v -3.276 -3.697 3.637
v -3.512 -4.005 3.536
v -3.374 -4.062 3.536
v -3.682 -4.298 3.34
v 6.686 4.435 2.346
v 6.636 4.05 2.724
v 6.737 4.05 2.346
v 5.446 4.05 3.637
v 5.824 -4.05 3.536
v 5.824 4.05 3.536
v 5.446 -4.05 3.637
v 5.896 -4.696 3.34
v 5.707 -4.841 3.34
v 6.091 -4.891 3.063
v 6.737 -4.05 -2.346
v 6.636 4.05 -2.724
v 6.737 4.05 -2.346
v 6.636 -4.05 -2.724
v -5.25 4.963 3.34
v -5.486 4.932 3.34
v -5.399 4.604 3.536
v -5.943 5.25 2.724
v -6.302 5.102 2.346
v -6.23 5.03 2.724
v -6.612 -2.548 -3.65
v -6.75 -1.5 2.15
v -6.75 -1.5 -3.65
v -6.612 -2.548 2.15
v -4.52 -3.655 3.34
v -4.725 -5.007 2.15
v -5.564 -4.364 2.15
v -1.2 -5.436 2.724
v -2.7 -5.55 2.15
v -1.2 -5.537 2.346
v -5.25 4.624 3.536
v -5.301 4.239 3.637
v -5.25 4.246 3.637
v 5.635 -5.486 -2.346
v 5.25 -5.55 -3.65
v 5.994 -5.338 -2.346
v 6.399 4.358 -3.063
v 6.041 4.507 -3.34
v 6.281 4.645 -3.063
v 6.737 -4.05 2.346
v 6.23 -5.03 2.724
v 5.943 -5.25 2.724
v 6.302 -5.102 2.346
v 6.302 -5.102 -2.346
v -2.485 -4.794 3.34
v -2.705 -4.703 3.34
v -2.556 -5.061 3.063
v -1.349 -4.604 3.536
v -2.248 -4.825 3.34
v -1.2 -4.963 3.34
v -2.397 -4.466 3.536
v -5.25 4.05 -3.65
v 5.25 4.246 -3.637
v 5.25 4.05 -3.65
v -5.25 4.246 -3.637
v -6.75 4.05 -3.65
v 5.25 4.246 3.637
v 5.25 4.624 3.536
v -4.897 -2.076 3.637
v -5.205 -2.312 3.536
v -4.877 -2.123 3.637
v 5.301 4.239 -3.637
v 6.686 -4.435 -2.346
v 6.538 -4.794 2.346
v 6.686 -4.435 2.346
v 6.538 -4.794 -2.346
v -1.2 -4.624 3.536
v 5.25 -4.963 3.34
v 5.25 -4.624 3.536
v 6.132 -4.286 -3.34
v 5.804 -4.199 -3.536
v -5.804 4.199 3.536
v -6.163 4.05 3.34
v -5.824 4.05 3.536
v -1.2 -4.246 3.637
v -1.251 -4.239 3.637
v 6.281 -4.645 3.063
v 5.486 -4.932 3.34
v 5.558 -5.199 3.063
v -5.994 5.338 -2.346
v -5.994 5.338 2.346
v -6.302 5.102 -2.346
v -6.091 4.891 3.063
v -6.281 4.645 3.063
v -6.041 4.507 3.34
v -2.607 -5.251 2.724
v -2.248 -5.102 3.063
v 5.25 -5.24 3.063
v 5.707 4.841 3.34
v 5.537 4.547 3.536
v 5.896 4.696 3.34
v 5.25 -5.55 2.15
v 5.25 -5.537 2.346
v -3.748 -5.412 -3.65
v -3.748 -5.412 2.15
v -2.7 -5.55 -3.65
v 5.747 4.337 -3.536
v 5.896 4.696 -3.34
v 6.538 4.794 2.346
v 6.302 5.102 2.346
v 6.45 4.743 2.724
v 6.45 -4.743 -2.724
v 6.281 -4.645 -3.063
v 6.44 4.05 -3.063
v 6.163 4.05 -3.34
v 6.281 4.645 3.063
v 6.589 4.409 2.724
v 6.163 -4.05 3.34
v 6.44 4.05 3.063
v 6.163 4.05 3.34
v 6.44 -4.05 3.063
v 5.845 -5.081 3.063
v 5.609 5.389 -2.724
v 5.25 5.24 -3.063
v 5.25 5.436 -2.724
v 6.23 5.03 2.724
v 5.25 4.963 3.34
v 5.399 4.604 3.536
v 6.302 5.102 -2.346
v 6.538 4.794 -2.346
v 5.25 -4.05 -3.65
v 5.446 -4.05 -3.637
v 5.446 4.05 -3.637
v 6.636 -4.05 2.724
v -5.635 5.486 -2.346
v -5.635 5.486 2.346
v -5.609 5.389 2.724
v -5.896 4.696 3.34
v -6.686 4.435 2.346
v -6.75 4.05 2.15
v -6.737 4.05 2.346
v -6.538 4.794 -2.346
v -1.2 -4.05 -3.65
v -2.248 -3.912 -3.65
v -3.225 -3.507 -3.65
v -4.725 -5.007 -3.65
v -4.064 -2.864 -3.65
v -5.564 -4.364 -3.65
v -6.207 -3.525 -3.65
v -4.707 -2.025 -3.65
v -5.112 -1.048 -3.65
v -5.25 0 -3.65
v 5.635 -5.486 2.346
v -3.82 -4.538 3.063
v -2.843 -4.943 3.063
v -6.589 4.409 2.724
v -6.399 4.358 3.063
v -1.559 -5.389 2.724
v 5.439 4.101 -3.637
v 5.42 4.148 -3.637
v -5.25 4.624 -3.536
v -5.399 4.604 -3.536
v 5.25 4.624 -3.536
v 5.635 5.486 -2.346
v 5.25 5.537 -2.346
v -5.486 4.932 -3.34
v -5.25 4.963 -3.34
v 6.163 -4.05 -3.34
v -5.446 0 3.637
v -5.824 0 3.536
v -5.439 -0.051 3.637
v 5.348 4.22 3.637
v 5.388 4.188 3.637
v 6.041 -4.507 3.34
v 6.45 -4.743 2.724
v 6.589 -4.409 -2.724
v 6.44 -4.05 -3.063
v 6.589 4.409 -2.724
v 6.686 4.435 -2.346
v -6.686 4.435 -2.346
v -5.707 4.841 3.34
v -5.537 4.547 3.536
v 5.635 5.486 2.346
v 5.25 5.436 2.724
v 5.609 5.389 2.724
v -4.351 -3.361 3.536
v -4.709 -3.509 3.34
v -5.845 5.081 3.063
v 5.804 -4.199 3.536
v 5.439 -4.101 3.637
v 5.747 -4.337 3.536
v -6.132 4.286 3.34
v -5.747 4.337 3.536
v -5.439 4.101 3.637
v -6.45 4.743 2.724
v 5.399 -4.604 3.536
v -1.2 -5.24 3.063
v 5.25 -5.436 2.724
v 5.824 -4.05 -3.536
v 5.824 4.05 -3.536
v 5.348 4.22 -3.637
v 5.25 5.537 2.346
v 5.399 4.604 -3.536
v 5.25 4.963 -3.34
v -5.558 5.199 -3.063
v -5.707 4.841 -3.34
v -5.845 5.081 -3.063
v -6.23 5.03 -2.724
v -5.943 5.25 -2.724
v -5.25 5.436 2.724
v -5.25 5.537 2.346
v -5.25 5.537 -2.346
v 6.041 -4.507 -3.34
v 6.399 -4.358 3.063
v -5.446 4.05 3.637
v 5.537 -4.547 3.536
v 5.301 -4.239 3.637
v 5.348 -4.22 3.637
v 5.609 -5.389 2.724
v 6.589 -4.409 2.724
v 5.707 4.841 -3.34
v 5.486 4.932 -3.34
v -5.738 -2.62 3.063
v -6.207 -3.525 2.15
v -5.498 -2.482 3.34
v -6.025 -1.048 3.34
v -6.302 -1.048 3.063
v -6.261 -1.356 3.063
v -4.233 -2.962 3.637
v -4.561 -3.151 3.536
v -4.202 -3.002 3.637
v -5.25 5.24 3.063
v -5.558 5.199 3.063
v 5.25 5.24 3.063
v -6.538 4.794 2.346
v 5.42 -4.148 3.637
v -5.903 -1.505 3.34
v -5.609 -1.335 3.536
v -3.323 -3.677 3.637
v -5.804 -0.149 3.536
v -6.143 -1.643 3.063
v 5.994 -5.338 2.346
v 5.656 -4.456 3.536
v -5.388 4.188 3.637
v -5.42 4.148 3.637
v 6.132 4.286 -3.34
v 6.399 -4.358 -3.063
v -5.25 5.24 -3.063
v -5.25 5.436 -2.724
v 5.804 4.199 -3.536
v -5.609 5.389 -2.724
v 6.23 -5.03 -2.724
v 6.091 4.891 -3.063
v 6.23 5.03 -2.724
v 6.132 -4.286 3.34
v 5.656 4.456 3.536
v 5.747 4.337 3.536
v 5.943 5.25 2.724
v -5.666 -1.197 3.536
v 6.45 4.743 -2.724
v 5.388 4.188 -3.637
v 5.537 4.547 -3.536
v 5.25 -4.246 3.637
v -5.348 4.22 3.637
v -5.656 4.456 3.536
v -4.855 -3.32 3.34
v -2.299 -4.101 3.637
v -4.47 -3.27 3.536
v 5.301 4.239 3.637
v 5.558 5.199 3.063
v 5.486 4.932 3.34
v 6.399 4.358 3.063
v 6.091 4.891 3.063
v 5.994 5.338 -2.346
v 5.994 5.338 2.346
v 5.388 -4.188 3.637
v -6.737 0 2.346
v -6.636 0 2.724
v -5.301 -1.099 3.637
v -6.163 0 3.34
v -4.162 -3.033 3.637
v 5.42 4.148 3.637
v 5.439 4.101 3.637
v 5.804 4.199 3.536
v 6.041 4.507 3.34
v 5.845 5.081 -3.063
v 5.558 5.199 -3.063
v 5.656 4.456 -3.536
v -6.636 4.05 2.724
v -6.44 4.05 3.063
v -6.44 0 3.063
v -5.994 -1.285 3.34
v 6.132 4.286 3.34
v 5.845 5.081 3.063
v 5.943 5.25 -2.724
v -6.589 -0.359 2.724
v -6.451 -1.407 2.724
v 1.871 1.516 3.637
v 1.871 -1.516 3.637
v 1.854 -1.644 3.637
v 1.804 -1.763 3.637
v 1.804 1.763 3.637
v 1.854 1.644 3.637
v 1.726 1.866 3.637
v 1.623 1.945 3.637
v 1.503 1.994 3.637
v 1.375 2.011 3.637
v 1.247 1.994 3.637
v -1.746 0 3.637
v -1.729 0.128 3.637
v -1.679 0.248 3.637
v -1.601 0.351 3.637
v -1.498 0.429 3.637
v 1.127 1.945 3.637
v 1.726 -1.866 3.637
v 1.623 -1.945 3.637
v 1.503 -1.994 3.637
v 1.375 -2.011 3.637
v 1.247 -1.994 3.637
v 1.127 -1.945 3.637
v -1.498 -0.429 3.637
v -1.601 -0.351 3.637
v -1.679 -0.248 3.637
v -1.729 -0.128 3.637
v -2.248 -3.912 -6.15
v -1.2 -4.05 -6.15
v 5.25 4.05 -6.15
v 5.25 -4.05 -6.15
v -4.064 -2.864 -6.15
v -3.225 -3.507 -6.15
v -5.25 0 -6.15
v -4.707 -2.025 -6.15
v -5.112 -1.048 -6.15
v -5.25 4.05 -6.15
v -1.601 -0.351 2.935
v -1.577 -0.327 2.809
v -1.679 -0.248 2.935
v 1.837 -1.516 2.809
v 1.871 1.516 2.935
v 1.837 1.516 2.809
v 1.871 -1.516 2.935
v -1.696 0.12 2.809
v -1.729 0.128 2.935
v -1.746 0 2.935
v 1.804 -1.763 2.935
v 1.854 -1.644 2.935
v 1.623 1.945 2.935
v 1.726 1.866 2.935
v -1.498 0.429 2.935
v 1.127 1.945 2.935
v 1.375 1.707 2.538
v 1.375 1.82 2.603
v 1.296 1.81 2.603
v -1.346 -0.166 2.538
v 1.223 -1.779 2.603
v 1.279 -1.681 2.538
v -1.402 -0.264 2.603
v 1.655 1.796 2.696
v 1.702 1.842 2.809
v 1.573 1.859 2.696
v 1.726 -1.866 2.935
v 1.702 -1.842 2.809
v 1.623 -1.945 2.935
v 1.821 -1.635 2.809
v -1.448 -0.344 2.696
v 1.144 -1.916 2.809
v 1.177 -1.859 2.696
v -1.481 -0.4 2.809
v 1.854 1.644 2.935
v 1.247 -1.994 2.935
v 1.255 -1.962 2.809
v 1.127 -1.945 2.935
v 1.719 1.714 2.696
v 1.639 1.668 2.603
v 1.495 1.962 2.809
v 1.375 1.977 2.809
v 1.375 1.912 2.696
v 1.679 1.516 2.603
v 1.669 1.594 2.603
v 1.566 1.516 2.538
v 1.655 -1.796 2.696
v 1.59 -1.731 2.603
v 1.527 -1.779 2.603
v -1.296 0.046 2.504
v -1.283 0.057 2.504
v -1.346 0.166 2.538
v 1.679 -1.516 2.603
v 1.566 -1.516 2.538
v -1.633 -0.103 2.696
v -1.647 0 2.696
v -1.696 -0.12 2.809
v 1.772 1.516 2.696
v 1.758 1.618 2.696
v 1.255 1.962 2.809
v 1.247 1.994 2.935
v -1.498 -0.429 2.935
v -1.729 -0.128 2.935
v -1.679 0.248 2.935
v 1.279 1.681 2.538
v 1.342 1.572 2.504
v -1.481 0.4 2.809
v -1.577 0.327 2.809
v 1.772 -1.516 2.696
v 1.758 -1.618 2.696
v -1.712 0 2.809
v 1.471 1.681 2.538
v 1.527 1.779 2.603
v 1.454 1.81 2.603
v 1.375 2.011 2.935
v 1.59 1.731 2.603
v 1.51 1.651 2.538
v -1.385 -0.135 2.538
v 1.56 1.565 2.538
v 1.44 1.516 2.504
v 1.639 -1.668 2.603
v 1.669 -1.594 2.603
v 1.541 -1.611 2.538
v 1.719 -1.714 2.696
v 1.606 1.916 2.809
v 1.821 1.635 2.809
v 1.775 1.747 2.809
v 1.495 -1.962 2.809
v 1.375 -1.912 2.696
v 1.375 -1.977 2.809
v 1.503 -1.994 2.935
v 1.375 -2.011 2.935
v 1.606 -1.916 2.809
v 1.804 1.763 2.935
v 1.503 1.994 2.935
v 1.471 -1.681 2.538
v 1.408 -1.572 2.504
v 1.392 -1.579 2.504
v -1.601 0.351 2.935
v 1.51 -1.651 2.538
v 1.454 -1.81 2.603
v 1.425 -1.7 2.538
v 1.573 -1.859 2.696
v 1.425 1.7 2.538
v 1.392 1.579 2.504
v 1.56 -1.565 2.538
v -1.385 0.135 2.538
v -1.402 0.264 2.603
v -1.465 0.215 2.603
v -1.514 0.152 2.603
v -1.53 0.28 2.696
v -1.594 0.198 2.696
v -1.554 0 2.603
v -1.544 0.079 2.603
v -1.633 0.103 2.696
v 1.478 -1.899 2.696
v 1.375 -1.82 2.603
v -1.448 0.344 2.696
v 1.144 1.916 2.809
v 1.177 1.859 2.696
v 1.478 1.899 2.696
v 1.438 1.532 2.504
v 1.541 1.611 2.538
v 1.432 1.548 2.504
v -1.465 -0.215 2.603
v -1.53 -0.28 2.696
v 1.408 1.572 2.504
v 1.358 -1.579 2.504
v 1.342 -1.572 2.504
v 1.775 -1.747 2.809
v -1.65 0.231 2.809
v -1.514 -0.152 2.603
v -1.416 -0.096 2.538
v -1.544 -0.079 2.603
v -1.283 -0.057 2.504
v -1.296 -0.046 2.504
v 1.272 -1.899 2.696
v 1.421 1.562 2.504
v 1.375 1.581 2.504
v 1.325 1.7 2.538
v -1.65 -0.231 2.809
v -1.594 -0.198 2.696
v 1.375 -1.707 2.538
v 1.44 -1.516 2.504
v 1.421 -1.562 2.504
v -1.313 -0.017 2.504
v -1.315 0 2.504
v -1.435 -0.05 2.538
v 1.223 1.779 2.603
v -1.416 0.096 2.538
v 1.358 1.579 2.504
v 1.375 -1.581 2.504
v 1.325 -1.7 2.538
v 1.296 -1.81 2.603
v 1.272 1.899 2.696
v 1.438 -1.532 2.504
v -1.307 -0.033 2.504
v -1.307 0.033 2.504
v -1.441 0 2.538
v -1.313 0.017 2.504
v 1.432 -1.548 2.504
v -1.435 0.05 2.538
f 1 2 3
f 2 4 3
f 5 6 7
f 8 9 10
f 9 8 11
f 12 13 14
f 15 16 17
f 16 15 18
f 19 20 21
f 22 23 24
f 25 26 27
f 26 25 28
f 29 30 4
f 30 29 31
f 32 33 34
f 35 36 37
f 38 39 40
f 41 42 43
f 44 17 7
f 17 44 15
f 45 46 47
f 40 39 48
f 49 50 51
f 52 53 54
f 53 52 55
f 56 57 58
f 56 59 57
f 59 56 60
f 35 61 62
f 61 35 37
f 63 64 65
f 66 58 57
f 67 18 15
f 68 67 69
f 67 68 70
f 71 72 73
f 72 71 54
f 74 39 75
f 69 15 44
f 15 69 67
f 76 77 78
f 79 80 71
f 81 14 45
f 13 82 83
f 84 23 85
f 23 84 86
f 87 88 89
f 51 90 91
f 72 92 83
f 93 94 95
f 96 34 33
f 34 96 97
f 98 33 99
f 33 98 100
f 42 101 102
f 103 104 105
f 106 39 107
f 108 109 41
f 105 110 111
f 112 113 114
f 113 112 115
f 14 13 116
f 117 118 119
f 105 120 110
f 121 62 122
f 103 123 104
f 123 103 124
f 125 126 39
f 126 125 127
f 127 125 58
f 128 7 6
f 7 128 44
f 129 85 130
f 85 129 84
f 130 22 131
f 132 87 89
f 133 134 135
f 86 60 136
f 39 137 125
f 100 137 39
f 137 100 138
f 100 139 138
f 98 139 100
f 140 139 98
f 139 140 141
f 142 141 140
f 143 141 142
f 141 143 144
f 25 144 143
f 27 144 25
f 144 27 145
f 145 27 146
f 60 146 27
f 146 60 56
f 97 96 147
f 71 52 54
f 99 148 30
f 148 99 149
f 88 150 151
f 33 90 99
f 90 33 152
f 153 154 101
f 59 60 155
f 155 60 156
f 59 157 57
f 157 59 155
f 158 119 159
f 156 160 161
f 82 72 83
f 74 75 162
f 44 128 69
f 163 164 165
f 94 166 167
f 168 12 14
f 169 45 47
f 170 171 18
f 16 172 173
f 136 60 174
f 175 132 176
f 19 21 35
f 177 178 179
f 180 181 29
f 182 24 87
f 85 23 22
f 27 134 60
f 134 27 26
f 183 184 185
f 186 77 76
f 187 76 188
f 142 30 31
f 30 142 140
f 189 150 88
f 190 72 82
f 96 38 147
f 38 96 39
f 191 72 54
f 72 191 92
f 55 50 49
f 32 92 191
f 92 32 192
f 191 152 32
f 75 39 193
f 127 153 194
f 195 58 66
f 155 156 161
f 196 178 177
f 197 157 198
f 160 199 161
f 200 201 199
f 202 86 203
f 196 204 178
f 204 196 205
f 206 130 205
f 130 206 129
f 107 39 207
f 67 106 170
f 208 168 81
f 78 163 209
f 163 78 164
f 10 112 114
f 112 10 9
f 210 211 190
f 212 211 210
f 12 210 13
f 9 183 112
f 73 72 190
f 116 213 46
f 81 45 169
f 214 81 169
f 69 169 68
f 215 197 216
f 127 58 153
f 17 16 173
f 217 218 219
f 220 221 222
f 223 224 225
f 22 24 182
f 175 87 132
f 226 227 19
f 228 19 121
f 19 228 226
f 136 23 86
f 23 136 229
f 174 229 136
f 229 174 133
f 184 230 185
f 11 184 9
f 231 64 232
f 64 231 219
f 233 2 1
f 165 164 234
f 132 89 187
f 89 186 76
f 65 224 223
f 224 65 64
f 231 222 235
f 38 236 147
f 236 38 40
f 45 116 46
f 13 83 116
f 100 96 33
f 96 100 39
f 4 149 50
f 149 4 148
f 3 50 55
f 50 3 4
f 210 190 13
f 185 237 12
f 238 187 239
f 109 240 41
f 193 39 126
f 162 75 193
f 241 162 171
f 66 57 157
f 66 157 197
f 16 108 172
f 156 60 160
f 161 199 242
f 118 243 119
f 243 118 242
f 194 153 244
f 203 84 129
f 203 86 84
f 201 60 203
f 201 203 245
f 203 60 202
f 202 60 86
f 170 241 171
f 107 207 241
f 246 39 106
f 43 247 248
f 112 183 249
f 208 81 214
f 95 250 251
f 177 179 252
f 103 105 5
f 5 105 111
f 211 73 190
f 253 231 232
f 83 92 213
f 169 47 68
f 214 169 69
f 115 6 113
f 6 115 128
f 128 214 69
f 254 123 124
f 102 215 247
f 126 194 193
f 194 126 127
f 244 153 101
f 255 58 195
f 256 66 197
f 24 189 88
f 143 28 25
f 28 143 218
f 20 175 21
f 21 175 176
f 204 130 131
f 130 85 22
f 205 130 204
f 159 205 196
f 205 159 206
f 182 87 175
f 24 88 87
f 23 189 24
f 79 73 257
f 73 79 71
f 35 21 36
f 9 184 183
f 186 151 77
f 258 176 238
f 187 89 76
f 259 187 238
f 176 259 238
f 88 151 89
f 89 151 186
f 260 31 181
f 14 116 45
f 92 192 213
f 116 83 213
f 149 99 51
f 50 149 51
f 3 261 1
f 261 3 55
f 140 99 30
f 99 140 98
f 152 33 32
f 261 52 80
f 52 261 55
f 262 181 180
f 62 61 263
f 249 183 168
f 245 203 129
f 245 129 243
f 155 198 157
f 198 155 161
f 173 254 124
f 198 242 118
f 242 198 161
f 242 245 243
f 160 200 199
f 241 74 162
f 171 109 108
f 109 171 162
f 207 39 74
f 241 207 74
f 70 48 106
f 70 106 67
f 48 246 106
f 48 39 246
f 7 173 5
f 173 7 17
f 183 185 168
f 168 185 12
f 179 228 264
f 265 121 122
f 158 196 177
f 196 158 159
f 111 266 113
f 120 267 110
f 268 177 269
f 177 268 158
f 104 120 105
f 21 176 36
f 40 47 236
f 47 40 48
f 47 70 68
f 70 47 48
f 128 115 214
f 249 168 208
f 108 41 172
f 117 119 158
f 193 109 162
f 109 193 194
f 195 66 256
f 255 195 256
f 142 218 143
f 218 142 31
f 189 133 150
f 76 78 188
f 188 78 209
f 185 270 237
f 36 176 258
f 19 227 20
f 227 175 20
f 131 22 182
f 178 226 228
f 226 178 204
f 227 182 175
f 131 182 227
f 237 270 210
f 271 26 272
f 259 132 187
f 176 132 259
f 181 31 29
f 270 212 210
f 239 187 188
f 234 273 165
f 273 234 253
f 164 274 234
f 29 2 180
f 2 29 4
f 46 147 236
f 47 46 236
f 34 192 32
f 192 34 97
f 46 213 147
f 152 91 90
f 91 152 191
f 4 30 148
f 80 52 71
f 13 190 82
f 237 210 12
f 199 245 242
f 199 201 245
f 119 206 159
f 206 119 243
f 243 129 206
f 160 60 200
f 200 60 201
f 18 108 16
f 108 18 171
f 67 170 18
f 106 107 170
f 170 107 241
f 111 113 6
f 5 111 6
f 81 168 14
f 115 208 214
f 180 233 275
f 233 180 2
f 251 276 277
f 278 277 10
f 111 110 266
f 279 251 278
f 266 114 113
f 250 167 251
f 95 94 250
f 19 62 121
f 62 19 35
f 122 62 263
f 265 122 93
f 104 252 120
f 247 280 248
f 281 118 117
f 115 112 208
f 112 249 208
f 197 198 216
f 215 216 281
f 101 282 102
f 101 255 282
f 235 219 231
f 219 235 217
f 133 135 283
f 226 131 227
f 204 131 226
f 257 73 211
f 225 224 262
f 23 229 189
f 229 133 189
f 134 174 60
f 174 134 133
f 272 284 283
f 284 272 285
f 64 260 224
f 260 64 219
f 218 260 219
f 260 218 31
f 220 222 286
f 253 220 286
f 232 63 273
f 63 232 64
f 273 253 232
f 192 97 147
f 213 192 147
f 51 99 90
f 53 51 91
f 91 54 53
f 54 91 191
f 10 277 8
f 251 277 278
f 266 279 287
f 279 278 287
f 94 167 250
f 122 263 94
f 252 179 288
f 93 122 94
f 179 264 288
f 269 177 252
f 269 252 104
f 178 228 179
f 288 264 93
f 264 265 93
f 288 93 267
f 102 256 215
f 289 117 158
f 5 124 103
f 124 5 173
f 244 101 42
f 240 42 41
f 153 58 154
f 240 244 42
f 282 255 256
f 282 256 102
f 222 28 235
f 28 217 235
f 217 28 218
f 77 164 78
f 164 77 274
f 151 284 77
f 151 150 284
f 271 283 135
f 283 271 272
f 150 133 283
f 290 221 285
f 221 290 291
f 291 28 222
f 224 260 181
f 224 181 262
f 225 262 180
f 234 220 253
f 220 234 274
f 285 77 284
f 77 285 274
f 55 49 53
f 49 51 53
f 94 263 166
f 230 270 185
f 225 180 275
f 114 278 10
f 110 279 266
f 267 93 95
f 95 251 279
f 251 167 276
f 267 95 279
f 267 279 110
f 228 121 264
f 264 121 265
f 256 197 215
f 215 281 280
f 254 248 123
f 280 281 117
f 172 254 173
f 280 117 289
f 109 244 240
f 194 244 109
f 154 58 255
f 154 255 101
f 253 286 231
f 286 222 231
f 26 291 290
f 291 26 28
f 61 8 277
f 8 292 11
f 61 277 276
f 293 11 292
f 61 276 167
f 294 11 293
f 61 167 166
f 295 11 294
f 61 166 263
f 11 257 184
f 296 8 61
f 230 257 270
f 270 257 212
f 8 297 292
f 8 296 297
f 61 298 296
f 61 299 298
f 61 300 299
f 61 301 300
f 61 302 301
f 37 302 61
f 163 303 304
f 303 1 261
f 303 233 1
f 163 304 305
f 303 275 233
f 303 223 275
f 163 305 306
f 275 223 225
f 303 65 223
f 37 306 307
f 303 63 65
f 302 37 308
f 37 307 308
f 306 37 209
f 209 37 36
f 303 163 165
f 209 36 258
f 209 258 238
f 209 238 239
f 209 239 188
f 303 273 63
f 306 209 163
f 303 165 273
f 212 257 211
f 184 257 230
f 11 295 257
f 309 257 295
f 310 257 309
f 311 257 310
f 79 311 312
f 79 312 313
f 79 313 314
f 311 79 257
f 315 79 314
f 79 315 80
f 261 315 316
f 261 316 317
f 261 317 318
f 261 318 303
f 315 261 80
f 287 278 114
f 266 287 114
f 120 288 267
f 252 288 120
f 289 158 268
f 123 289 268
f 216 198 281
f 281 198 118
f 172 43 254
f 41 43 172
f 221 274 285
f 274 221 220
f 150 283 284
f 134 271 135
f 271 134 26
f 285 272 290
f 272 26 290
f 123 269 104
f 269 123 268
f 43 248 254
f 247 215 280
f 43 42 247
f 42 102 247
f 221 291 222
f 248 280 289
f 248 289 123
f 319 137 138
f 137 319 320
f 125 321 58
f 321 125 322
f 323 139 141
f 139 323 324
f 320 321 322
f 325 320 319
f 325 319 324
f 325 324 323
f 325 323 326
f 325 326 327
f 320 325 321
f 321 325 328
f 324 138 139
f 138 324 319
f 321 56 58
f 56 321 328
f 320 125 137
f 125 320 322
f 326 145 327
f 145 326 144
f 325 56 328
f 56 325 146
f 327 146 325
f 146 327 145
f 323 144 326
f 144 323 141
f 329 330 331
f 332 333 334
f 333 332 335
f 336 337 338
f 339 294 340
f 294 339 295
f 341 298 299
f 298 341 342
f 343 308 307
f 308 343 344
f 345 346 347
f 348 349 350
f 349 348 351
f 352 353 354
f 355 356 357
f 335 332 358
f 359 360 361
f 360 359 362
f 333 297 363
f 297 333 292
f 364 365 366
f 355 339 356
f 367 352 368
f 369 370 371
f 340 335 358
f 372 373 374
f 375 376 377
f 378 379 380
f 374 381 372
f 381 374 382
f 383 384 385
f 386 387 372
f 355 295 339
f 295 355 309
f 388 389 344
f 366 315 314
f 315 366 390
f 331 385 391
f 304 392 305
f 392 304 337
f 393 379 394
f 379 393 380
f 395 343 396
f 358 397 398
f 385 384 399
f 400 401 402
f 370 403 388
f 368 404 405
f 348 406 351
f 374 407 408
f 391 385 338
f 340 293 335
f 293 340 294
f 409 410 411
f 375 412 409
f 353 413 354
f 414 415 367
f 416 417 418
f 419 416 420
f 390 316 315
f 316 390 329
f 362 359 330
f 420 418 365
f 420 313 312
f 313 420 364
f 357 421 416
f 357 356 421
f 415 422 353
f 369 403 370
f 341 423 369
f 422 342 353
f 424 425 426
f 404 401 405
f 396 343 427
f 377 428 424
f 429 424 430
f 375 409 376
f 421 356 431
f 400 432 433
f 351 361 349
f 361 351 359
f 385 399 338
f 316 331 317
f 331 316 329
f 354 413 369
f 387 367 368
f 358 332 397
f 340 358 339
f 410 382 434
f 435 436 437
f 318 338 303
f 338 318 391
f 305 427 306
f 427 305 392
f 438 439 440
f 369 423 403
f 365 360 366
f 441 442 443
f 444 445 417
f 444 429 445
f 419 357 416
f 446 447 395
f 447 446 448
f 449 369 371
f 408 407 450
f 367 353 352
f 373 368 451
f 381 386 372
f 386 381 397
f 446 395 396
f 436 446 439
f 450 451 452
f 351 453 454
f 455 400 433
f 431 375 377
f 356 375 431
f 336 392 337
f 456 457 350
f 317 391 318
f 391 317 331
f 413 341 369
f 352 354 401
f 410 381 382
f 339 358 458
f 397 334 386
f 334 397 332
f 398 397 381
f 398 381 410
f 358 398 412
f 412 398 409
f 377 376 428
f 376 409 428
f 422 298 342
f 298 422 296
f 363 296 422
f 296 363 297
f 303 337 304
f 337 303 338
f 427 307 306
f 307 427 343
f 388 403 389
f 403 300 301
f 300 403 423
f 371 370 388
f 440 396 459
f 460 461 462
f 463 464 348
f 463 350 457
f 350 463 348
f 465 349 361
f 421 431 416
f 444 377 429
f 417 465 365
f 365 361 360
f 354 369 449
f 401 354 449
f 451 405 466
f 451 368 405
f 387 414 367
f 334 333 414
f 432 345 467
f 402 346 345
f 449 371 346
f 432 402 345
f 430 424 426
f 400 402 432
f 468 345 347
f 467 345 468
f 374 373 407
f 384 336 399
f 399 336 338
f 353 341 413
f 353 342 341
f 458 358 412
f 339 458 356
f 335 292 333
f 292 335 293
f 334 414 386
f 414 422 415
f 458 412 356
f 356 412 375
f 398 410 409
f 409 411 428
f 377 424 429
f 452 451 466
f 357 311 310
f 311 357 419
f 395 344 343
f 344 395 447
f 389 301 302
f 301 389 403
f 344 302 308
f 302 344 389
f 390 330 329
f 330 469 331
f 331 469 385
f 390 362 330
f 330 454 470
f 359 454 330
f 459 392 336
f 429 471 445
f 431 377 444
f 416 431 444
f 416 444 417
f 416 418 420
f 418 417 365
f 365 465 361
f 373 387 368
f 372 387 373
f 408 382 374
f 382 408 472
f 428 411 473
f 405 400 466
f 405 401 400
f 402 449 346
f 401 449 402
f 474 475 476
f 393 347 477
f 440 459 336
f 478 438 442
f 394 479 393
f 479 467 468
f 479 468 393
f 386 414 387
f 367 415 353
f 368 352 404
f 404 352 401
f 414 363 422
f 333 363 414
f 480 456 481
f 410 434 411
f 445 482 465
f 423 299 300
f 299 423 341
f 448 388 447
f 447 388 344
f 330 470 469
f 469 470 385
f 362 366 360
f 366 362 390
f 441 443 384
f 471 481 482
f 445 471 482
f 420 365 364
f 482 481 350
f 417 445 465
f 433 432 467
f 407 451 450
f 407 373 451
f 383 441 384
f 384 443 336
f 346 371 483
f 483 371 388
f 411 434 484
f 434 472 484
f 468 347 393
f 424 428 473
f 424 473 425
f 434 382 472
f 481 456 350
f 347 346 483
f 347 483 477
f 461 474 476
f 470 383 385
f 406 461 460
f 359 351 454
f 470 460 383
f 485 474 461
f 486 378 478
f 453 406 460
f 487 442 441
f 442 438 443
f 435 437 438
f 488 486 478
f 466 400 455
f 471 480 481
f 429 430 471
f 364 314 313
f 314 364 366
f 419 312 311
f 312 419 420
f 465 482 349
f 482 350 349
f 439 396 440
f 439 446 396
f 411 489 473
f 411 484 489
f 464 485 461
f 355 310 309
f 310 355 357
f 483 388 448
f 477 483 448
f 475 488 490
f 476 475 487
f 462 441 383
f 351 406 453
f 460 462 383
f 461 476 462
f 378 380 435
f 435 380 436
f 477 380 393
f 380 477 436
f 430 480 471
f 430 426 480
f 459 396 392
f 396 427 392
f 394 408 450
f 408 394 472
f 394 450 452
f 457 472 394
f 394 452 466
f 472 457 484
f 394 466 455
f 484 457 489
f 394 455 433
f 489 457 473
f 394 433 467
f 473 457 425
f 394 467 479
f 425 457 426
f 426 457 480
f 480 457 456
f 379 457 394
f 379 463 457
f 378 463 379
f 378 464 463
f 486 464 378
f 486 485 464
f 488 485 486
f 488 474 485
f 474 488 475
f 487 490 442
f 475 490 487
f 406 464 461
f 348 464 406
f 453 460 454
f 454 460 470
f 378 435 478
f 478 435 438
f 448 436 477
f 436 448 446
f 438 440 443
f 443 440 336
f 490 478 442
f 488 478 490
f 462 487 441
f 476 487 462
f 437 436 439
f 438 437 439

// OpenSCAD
$top_width = 11.5;
$top_height = 9.1;
$top_depth = 5.3;


module buttonBase(){
    
        hull(){
    difference(){
      cube([$top_width - 1, $top_height - 1, $top_depth - 1], center = true);
      translate([-($top_height - 1) / 2, -($top_height - 1) / 2 , 0])
      cube([$top_height - 1, $top_height - 1, $top_depth - 1], center = true);
    }
    translate([-($top_width - $top_height) / 2,0,0])
    cylinder(h = $top_depth - 1, r = ($top_height - 1) / 2, center = true, $fn=24);
    }
}

module buttonTop(){
  $roundness = 1.5;
  minkowski(){
    buttonBase();
    hull(){
      sphere(r=$roundness, $fn=24);
      translate([-($roundness / 2),-($roundness / 2),-($roundness / 2)])
        cube($roundness, center = true);
    }
  }
}

module cutouts(){
    minkowski(){
      translate([0.5,0,0])
        rotate([0,180,0])
          cylinder(h = 2, r = 1.75, center = true, $fn=3);
    sphere(r=0.5, $fn=24);
    }
}

difference(){
    union(){
buttonTop();
translate([0,0,-4])
  buttonBase();
    }
translate([0,0,4])
cutouts();
}
